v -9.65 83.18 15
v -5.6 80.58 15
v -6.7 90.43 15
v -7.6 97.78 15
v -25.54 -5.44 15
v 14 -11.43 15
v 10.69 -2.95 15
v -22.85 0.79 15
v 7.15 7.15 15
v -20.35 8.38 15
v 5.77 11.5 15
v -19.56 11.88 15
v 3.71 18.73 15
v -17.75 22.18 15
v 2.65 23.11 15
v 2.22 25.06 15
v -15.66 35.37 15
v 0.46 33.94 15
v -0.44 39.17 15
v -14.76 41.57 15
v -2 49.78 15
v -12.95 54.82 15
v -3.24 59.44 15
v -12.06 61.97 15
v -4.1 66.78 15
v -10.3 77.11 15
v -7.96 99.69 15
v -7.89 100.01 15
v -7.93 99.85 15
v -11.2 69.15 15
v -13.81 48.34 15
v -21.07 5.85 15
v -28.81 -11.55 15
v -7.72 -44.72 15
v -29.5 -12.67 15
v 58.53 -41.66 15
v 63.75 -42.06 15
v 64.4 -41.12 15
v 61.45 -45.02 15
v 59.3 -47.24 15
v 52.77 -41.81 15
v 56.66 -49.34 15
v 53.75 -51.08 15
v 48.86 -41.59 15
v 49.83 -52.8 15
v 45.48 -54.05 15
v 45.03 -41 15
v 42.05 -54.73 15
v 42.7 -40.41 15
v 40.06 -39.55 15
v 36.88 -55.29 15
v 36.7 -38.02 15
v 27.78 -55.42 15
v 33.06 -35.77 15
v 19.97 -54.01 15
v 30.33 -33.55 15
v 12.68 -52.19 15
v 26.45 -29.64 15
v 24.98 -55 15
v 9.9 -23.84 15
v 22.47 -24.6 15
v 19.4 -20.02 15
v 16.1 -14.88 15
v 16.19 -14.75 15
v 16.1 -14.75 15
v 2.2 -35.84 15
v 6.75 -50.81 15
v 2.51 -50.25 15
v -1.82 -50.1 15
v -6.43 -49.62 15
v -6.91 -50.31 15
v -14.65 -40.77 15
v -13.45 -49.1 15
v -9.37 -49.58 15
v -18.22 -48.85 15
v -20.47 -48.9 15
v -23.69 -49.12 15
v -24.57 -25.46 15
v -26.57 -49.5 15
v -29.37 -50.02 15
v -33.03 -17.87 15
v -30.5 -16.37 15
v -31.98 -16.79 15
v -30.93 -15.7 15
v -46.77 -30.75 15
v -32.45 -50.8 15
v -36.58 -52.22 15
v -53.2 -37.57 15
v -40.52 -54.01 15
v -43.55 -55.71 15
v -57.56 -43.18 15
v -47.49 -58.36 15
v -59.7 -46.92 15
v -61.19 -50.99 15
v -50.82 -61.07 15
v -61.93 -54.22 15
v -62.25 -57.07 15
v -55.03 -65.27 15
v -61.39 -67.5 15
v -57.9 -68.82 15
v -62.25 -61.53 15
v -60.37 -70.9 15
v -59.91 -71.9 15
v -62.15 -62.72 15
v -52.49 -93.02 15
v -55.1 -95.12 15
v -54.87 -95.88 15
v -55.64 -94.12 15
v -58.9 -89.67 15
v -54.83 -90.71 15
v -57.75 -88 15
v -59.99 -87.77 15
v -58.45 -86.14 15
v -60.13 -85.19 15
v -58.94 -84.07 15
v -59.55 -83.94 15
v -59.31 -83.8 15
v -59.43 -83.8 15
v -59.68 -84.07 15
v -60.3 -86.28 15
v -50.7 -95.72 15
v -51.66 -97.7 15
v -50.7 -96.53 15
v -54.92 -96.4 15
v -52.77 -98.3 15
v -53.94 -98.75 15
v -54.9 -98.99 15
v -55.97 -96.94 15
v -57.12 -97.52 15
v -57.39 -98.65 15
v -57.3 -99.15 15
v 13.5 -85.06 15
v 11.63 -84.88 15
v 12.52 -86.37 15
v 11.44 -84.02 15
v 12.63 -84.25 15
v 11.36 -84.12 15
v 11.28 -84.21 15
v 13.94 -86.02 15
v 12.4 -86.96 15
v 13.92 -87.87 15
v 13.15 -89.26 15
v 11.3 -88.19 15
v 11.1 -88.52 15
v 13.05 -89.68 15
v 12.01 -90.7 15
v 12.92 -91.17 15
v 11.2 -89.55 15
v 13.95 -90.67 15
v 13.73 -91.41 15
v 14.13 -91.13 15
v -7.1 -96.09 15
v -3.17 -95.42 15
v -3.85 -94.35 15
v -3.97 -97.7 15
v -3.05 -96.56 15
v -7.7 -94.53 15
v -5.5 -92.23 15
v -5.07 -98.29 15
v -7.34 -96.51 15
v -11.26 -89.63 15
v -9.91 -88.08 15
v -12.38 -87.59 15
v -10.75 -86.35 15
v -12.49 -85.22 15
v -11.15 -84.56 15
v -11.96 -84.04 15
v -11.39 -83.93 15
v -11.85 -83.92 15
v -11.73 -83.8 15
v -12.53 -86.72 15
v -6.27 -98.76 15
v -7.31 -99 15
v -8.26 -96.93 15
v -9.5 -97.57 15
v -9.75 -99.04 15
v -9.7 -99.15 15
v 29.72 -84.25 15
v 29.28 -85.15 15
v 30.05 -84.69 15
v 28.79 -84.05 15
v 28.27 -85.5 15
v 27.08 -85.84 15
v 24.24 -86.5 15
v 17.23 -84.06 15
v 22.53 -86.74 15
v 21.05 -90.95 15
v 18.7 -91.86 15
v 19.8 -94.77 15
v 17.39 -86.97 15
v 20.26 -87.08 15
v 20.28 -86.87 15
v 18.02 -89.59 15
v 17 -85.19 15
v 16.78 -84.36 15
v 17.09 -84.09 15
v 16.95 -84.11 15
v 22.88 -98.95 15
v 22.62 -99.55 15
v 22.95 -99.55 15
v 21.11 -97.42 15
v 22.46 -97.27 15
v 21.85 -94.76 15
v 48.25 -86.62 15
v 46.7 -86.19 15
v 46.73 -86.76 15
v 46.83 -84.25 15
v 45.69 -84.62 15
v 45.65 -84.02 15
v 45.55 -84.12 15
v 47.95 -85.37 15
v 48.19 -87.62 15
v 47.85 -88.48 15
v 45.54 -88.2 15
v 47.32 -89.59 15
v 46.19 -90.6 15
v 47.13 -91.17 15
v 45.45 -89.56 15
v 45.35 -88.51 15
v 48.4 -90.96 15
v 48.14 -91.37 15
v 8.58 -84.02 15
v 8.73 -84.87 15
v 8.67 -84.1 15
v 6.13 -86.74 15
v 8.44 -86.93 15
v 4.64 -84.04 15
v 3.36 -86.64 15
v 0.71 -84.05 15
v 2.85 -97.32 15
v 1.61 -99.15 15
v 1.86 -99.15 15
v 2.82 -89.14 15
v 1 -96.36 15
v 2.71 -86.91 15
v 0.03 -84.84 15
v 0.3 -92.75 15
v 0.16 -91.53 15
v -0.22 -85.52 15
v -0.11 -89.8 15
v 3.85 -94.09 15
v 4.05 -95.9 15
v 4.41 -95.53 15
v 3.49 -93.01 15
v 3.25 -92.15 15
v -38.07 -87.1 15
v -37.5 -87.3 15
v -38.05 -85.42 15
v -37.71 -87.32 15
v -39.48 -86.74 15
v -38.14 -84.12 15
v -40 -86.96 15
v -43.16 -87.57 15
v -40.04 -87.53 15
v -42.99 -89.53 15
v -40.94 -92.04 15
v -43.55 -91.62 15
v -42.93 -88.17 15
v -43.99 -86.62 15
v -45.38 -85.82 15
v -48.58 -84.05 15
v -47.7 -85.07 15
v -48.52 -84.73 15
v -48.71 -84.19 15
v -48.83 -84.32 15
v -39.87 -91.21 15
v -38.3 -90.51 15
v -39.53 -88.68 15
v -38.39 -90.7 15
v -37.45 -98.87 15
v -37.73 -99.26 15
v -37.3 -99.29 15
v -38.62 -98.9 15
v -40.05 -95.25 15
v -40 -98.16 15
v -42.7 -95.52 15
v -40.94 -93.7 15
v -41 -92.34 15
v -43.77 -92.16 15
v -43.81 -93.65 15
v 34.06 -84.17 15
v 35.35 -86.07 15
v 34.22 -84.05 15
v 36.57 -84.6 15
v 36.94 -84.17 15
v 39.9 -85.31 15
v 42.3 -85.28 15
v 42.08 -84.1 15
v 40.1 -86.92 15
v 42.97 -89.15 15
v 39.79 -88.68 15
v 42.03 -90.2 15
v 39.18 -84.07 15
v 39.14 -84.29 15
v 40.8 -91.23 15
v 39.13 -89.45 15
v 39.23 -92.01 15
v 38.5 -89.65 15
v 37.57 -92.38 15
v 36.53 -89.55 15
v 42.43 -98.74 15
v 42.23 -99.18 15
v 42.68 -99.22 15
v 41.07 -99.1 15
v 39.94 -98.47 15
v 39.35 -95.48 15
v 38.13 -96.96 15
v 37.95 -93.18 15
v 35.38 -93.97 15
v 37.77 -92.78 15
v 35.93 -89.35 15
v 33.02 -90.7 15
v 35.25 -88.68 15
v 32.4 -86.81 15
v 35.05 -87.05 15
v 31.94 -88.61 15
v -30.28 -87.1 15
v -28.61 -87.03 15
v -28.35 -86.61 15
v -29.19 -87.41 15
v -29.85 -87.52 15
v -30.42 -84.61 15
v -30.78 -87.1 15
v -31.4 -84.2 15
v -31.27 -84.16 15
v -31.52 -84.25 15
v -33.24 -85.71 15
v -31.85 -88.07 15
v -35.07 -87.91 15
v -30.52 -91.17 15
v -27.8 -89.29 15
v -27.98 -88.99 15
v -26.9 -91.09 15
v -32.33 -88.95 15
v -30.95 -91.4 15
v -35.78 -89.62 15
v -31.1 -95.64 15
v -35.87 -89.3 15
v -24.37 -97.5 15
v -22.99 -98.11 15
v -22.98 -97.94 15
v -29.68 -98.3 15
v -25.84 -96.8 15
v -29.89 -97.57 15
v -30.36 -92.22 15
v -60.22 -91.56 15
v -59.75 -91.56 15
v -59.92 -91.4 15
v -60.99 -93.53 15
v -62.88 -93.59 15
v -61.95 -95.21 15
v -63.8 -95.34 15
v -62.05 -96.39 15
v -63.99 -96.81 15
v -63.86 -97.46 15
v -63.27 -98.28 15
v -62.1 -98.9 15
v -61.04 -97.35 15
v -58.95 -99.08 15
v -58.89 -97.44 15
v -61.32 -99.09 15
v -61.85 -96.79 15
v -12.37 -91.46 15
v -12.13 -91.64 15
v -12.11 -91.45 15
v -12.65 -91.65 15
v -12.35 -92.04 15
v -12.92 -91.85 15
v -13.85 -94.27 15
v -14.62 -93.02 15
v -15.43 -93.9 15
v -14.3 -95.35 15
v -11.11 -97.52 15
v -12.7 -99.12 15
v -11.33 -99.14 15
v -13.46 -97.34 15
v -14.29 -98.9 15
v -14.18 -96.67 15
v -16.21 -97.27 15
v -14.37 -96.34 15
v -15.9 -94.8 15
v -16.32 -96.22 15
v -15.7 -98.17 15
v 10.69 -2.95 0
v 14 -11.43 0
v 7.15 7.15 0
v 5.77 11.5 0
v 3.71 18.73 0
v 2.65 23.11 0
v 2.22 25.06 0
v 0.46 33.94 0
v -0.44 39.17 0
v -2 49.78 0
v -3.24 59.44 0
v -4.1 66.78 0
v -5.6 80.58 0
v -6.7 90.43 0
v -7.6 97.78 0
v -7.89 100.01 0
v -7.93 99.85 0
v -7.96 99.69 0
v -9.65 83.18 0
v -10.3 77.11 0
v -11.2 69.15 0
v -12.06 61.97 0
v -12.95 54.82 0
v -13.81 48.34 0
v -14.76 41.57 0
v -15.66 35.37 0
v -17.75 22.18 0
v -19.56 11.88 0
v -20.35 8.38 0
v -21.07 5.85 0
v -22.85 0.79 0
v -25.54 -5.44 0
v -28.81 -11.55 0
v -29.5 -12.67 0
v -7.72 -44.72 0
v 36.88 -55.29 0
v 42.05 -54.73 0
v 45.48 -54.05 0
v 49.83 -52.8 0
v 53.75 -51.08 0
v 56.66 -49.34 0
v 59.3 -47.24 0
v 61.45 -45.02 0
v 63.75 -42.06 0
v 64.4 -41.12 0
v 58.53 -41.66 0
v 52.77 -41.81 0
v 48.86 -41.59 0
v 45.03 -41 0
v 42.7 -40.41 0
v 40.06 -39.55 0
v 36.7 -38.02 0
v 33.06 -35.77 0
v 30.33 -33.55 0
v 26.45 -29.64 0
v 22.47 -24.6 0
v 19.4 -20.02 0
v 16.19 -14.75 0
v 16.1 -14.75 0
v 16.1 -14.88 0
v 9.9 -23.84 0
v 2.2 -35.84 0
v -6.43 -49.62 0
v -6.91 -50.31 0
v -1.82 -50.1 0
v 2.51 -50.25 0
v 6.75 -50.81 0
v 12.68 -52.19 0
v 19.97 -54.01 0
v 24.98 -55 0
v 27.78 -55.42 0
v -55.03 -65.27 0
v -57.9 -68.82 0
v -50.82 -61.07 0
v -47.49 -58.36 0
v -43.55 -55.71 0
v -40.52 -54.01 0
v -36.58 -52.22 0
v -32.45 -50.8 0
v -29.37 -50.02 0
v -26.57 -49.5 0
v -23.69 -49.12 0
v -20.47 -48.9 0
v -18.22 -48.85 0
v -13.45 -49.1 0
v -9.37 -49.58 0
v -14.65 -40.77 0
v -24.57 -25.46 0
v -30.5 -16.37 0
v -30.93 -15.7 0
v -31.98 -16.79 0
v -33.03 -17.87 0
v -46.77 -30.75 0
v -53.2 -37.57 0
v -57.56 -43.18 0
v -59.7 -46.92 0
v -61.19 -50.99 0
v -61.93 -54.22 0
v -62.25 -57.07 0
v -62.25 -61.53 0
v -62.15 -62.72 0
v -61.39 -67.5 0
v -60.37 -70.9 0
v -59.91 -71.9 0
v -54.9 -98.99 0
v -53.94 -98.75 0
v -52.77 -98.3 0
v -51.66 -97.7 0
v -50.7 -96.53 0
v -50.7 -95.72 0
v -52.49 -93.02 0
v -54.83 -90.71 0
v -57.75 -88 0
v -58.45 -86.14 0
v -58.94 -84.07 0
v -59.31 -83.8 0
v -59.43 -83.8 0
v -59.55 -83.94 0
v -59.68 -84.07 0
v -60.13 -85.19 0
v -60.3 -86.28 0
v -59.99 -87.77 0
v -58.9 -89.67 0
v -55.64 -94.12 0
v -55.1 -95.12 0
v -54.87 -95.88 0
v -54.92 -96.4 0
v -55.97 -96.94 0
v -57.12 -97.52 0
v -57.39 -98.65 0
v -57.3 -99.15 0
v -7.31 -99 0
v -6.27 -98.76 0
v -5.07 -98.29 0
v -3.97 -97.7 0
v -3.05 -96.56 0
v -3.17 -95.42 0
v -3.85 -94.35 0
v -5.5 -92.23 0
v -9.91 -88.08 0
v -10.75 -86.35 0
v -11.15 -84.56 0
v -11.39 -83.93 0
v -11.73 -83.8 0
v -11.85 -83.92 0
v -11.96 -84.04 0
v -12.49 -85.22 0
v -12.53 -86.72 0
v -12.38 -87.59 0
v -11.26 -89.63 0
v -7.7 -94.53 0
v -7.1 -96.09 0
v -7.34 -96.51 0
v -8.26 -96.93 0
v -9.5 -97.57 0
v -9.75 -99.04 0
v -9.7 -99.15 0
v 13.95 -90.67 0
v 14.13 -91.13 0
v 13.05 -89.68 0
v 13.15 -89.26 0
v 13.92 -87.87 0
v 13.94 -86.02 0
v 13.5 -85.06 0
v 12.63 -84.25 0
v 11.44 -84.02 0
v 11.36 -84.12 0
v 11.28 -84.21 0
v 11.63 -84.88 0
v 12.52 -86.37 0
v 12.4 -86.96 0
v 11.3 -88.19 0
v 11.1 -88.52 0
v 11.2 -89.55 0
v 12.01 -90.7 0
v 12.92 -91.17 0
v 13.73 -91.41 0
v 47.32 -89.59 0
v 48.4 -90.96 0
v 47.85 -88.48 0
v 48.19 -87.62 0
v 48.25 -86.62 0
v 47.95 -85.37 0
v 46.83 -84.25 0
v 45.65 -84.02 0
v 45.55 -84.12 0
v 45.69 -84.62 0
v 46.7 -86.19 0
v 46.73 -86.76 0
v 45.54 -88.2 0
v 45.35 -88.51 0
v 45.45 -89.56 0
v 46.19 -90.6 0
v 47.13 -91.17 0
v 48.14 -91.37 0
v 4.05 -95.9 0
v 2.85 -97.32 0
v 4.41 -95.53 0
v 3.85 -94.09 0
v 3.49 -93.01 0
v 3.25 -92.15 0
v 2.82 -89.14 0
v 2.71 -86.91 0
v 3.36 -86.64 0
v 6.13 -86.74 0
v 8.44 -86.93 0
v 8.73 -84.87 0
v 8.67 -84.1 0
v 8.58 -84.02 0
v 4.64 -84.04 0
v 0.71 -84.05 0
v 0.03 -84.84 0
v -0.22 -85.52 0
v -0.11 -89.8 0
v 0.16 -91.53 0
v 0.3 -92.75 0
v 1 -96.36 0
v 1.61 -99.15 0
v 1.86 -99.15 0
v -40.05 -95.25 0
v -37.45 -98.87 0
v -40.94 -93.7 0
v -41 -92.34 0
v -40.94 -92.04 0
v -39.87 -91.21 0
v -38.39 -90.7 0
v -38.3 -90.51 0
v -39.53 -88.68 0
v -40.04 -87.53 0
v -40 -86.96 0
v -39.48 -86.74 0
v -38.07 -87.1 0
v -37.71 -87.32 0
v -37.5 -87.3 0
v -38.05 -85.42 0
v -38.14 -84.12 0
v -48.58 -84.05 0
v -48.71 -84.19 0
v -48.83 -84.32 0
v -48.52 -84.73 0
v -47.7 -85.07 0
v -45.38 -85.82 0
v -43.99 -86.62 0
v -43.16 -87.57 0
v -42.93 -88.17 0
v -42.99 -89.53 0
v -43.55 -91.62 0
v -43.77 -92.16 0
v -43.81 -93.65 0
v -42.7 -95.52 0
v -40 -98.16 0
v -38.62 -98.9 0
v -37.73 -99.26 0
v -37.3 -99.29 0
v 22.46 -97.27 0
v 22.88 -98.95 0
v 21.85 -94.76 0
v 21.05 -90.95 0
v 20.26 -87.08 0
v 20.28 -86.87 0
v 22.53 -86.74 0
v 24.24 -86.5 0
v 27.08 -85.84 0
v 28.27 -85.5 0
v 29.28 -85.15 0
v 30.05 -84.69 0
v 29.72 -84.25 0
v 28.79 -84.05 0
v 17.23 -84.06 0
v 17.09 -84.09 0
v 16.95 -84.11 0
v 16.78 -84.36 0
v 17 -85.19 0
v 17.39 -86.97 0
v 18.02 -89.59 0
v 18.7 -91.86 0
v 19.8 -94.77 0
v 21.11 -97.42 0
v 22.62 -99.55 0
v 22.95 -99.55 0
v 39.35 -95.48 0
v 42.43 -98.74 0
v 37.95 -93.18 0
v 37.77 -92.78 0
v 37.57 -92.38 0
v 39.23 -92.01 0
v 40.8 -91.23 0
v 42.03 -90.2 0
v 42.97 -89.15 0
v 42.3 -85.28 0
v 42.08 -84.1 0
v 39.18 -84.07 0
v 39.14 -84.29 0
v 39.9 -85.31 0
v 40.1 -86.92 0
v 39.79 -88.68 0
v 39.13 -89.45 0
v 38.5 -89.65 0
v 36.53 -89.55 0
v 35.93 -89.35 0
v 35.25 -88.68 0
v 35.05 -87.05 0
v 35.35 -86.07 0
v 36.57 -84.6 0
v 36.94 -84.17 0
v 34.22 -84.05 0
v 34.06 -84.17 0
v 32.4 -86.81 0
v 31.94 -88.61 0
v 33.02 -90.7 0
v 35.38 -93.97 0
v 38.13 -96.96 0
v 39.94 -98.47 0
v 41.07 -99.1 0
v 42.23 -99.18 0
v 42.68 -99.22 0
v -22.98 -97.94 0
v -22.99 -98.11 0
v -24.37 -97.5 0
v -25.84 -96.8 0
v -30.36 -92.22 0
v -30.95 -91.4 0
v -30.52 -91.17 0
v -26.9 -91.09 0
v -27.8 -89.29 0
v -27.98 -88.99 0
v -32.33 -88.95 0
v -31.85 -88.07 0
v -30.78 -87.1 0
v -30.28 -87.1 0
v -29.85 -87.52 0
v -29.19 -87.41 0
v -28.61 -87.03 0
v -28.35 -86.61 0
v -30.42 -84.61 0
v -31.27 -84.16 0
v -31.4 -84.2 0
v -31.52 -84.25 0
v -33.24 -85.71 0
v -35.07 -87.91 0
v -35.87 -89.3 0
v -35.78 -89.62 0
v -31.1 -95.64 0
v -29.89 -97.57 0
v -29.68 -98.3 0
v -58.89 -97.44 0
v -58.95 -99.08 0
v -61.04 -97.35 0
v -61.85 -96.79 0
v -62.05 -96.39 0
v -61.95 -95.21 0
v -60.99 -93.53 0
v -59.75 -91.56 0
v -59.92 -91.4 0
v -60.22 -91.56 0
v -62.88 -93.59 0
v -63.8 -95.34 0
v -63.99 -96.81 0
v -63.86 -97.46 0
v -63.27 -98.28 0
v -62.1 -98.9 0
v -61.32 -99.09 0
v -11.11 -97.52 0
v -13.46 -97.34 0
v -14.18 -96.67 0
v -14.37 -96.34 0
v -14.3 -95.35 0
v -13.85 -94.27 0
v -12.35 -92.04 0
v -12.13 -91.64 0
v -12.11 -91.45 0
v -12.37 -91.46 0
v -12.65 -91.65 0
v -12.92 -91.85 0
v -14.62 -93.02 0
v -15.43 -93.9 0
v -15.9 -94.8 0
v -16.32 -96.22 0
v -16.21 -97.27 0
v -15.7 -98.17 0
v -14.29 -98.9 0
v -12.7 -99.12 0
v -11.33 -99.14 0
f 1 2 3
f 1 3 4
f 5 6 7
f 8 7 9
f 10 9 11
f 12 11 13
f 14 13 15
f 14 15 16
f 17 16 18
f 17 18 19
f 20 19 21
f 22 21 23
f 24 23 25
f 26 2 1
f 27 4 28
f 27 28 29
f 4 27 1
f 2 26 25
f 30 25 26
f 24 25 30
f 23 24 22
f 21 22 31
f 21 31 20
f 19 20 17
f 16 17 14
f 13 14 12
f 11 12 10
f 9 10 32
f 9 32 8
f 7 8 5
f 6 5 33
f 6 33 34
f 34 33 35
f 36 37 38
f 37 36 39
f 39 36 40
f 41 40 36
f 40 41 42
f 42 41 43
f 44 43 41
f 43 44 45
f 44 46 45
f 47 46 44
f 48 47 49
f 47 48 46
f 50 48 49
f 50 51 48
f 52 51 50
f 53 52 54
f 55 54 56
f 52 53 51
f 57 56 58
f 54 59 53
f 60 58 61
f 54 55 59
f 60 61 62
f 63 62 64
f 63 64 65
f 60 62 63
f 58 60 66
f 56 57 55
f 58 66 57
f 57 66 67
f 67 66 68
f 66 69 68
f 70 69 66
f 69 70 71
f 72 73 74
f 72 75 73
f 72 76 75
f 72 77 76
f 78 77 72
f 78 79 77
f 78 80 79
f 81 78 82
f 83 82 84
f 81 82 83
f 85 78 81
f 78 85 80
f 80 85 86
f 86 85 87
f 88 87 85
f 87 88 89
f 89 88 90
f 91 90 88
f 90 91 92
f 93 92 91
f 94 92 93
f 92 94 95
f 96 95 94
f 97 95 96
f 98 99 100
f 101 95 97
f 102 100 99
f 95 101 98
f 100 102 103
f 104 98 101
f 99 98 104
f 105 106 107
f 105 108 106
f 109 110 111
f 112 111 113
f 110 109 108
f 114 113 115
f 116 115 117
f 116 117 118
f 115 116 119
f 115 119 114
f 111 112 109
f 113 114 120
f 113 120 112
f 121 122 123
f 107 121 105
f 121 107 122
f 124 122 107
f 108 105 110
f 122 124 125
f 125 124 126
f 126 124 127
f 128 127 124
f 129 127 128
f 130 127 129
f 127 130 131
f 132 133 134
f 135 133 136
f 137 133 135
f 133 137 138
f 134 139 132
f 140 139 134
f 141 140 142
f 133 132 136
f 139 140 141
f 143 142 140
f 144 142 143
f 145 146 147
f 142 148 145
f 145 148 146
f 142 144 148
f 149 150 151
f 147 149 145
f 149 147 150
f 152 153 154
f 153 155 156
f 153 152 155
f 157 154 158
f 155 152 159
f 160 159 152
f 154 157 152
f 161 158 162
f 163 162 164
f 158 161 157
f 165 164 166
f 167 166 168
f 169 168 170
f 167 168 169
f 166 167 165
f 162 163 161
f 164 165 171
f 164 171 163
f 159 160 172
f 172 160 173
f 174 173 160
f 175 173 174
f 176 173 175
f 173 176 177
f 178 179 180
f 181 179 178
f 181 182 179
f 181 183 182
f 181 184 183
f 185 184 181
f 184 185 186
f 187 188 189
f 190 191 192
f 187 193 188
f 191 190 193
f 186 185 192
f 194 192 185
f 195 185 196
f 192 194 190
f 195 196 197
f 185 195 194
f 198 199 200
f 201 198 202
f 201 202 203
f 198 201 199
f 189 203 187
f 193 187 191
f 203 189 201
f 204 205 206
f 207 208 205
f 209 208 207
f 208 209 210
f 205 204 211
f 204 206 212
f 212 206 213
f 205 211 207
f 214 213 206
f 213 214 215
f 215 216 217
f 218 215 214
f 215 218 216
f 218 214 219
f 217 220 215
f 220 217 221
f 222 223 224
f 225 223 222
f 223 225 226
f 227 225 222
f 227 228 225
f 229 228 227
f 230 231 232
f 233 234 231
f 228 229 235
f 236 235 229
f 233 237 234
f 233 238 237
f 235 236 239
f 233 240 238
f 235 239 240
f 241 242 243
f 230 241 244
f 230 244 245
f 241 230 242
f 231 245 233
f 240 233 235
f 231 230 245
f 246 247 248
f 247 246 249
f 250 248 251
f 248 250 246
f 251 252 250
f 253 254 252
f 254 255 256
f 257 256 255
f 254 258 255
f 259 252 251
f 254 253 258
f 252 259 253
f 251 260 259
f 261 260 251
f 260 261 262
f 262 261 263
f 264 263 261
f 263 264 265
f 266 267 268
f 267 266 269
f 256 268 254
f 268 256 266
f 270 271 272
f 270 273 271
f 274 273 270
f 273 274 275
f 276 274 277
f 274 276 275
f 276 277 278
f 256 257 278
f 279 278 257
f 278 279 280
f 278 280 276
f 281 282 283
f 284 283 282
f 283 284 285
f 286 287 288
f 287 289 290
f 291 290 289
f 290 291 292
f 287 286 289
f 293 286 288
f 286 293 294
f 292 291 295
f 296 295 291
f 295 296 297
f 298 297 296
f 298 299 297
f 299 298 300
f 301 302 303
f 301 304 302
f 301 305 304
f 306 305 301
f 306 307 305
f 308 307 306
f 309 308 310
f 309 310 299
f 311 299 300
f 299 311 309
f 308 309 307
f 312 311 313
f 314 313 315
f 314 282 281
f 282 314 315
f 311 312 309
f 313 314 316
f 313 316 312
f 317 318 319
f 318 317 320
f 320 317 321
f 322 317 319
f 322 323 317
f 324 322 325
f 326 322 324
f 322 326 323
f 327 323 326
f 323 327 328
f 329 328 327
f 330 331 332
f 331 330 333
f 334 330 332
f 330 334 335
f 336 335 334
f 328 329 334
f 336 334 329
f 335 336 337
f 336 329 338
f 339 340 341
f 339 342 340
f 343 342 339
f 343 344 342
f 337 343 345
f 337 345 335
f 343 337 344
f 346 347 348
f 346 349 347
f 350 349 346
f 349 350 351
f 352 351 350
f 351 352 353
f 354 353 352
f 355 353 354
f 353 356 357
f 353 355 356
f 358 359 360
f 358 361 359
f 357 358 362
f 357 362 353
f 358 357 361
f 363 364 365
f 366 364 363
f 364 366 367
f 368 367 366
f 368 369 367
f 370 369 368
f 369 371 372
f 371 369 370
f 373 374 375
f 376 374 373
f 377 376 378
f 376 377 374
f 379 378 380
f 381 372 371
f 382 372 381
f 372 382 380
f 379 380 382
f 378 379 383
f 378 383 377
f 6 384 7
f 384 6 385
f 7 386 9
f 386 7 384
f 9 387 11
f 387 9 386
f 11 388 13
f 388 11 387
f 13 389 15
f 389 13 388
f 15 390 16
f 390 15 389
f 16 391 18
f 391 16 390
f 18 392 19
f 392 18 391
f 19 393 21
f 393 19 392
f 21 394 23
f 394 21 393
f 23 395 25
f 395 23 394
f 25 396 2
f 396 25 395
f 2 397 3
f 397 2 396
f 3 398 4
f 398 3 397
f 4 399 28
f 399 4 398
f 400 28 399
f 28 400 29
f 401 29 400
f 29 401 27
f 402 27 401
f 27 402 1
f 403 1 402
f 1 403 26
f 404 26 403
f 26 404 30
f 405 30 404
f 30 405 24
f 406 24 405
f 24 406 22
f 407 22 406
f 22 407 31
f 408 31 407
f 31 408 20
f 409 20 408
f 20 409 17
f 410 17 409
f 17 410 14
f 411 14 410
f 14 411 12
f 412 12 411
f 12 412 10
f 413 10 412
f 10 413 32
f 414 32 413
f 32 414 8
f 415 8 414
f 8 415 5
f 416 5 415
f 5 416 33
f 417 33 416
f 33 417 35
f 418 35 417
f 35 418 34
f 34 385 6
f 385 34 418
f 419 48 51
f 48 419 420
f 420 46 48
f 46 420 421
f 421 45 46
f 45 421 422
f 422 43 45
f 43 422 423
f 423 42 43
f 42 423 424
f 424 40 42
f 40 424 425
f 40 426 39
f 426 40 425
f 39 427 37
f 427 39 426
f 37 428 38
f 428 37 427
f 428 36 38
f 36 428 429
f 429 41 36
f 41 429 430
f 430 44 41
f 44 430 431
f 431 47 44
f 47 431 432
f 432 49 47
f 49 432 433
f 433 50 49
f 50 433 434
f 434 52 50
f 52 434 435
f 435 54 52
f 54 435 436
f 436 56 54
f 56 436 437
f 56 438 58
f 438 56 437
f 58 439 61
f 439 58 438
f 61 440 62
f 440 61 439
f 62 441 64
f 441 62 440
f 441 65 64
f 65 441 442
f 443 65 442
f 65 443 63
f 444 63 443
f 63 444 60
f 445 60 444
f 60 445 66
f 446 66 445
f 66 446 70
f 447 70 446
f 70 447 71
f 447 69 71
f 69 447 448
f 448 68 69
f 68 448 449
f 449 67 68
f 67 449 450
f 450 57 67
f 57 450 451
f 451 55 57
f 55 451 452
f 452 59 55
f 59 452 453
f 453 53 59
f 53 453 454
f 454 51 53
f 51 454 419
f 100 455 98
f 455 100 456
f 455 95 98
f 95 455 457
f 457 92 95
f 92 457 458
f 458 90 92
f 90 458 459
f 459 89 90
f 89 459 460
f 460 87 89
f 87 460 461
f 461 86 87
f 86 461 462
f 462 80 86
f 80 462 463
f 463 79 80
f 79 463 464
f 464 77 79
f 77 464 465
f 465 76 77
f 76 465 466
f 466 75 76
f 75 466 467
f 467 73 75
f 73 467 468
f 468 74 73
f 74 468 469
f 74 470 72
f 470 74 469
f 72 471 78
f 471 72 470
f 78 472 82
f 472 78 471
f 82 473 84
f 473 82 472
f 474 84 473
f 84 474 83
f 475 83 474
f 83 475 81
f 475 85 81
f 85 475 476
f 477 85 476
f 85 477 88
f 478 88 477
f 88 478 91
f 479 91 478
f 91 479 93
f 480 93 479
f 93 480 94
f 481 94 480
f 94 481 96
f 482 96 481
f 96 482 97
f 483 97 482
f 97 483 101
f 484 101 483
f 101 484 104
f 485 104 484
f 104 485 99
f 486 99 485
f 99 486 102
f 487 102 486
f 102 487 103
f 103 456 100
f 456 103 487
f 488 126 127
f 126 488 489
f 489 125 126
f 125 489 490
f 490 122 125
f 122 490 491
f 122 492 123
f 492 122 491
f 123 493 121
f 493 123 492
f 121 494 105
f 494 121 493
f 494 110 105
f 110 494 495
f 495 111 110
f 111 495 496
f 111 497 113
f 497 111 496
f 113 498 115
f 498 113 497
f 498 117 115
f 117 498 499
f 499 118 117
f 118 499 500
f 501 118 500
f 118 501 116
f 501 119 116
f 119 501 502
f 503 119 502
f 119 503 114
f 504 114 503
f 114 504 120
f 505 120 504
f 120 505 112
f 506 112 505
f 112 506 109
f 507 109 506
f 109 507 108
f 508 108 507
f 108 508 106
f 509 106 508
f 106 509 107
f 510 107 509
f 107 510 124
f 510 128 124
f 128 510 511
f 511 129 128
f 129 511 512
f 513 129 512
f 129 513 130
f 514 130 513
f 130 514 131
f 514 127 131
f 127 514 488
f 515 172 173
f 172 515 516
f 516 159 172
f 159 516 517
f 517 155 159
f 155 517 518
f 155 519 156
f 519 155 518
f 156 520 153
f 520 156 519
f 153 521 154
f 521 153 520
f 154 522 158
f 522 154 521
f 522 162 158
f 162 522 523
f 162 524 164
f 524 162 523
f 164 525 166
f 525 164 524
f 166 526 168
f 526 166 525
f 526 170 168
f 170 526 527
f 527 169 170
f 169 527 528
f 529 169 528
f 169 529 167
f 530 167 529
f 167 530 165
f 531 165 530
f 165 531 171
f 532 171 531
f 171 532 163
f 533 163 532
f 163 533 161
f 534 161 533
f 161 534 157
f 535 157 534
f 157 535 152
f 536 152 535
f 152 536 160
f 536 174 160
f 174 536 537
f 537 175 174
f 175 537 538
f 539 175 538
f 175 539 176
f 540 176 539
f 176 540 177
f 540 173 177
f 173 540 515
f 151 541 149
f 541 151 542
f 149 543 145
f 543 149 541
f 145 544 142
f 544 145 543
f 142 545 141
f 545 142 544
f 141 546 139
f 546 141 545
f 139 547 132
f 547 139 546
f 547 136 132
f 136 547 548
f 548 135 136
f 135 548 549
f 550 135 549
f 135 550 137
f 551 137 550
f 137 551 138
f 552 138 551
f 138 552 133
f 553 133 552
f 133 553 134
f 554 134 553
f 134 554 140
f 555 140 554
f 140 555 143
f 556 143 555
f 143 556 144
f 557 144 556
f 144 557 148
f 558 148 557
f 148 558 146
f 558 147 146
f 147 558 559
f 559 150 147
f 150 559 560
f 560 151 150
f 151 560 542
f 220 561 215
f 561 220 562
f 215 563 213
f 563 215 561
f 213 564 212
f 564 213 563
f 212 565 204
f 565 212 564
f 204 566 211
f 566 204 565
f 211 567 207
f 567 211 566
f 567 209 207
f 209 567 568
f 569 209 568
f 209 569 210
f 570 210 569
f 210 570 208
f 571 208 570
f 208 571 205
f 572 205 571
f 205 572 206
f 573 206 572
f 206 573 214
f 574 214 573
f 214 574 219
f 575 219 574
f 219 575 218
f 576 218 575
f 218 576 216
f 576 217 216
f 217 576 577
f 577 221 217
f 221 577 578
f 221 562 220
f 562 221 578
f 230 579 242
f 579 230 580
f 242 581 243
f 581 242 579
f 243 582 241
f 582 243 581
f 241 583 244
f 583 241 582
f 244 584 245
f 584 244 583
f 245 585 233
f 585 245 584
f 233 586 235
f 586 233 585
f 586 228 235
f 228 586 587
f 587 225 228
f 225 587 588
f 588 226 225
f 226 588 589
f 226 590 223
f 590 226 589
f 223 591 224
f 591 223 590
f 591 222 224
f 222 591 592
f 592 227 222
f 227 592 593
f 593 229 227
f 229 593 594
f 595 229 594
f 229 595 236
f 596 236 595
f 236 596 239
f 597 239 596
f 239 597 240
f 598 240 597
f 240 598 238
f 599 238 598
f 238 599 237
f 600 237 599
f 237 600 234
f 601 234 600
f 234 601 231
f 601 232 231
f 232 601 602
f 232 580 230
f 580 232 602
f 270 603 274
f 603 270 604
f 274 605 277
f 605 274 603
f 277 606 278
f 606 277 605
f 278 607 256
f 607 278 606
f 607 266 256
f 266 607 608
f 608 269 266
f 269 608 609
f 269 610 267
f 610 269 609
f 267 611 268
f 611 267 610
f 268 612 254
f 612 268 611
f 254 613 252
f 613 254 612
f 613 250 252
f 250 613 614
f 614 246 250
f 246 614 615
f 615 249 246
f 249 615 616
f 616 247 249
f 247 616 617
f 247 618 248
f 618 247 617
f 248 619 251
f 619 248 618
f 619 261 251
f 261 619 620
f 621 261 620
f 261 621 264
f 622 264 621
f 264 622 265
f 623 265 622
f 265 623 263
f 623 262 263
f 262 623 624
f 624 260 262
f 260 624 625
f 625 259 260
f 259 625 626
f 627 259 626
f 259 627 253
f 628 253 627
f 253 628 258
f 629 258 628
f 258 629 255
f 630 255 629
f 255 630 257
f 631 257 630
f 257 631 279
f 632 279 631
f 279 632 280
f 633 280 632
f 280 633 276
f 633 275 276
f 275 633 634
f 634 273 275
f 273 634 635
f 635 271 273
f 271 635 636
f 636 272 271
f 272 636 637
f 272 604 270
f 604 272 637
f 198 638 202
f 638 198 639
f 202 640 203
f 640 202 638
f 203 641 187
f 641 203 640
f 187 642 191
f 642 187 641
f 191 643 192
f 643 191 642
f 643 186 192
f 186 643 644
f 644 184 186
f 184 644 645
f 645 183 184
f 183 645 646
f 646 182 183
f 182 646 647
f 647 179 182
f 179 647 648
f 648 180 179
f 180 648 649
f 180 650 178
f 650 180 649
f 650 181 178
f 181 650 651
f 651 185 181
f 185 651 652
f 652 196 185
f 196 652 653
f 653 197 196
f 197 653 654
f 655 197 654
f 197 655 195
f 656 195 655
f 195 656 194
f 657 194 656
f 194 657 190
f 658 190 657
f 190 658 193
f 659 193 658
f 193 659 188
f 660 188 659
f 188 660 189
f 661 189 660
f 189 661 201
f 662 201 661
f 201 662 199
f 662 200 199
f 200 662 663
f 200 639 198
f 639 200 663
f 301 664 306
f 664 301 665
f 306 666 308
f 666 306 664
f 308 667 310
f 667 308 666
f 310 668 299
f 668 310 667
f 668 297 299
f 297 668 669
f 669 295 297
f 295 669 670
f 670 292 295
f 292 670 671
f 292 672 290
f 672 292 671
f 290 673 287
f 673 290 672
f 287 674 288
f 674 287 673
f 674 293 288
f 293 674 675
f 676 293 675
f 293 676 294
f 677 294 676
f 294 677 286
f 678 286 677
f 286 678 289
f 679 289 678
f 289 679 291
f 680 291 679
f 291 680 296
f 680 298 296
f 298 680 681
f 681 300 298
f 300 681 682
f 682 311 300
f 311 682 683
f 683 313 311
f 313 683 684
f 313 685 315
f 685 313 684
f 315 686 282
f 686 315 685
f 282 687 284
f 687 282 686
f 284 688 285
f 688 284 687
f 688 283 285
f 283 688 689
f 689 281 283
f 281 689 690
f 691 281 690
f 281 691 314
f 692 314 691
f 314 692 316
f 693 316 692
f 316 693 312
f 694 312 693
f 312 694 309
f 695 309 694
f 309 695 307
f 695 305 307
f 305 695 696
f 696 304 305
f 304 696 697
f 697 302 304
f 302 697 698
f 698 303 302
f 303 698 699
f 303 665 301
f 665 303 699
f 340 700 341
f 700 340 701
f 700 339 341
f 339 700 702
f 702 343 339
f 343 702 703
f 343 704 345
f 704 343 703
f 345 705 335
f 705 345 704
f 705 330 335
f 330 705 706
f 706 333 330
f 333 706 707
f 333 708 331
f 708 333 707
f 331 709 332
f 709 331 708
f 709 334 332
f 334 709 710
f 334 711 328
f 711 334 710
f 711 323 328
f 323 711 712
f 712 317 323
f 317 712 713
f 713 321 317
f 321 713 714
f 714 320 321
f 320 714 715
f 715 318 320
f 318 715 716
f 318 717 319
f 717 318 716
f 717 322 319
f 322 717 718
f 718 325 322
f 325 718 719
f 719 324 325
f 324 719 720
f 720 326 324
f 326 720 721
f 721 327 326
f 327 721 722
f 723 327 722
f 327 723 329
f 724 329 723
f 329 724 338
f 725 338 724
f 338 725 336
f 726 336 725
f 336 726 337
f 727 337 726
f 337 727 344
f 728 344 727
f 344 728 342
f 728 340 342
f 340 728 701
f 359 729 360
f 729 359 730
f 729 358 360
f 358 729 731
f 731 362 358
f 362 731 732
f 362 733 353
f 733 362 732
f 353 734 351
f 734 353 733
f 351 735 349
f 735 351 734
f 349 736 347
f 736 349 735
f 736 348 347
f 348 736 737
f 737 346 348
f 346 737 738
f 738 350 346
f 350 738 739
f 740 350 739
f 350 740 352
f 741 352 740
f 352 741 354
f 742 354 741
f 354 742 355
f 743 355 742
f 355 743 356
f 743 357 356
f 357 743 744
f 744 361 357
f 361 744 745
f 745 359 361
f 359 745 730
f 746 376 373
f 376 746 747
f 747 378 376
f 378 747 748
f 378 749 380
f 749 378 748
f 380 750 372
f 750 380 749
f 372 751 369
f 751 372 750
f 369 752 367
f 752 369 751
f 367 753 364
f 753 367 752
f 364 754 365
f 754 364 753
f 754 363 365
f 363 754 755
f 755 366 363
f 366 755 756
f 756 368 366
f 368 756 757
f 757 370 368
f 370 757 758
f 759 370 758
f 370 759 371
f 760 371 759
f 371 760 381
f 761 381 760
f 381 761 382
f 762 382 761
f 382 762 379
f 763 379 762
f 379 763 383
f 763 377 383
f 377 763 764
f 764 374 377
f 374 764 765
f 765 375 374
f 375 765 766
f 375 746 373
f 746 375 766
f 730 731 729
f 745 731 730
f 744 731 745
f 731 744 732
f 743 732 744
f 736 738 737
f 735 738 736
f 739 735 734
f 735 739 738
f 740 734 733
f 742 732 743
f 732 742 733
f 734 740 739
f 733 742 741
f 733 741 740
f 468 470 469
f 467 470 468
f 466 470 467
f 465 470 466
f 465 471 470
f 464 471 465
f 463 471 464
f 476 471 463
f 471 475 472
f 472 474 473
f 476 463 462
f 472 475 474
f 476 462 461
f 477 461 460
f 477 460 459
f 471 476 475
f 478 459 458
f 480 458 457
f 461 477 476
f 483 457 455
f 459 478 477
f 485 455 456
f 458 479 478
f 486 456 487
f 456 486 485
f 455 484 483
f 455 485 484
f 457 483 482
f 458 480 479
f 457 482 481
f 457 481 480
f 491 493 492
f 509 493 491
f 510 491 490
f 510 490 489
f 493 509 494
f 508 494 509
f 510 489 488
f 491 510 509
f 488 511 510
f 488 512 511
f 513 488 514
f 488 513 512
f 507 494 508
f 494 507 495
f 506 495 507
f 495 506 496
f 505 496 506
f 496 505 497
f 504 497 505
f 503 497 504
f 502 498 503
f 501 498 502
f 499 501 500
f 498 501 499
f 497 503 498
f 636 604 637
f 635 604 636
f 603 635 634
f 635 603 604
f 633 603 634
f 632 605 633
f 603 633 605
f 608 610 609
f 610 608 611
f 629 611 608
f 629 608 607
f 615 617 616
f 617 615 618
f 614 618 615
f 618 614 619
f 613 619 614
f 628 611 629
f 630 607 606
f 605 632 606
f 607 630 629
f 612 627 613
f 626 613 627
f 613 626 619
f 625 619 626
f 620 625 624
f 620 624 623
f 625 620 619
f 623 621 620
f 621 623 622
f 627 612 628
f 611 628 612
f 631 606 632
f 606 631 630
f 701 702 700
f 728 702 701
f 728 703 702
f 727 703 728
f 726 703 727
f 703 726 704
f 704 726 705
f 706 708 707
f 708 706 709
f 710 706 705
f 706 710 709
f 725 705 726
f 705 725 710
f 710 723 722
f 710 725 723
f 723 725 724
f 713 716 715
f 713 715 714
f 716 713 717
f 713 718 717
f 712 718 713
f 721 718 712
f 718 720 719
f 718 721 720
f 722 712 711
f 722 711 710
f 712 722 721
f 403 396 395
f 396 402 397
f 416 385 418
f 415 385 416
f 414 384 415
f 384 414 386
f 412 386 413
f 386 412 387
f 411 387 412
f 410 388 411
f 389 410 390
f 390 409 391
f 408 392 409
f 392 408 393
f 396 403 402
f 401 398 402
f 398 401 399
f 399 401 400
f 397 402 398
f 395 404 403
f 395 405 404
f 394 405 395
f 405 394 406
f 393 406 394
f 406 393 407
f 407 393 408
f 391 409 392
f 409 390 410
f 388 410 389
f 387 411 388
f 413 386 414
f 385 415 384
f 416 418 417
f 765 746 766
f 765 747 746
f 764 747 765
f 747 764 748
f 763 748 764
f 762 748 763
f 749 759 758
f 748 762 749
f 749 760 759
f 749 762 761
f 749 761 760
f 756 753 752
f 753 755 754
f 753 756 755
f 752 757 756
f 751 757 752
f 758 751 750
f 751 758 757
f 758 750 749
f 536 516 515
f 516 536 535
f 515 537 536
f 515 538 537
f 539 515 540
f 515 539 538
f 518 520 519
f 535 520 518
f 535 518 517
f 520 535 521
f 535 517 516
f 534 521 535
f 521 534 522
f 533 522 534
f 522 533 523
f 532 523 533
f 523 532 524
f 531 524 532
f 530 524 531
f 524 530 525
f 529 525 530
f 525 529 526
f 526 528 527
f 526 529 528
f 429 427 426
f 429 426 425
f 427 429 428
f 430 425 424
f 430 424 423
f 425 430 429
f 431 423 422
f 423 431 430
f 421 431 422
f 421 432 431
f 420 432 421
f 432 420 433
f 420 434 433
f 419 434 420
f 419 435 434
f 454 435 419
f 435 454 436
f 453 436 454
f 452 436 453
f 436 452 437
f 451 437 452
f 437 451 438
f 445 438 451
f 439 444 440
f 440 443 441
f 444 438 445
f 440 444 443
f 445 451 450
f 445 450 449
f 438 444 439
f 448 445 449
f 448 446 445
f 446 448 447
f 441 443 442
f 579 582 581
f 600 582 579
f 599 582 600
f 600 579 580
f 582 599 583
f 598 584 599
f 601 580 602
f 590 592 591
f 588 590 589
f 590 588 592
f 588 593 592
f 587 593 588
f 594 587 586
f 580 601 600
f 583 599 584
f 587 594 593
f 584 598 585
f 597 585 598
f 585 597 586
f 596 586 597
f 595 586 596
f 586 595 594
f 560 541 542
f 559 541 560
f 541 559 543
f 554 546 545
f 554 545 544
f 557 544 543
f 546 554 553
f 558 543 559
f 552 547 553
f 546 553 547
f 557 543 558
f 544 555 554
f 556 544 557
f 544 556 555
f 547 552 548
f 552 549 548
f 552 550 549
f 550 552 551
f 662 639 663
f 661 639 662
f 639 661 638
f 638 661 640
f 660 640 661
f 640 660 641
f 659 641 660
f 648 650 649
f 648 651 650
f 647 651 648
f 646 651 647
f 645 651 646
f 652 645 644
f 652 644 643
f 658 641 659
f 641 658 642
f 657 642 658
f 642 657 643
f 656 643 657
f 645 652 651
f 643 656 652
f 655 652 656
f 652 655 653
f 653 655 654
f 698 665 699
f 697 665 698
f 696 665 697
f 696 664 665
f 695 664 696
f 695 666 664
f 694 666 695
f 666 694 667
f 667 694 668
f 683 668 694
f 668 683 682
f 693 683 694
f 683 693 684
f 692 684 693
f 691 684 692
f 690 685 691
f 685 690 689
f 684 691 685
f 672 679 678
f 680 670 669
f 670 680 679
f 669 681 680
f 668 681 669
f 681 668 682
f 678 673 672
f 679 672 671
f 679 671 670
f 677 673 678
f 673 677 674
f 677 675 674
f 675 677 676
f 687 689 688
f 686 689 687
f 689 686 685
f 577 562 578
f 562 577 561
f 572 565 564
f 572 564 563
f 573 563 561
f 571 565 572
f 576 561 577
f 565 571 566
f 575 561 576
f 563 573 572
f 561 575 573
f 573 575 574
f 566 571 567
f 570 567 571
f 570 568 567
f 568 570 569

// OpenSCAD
module db02c1d8352dbfba158cc470afe8efdc_1()
{
 /* Generated by trace2scad version 20150415
    http://aggregate.org/MAKE/TRACE2SCAD/
    Optimized model has 387/4796 original points
 */
 color([0.48, 0.48, 0.48])
 assign(minx=0) /* polygon minx=39 */
 assign(miny=0) /* polygon miny=45 */
 assign(maxx=12880) /* polygon maxx=12880 */
 assign(maxy=20000) /* polygon maxy=20001 */
 assign(dx=maxx-minx)
 assign(dy=maxy-miny)
 assign(maxd=((dx>dy)?dx:dy))
 scale([1/maxd, 1/maxd, 1])
 translate([-minx-dx/2, -miny-dy/2, 0])
 linear_extrude(height=1, convexity=387)
 union() {
  union() {
   polygon([[5647,19985],[5644,19969],[5475,18318],[5410,17711],[5320,16915],[5234,16197],[5145,15482],[5059,14834],[4964,14157],[4874,13537],[4665,12218],[4484,11188],[4405,10838],[4333,10585],[4155,10079],[3886,9456],[3559,8845],[3490,8733],[5668,5528],[7840,8857],[7509,9705],[7155,10715],[7017,11150],[6811,11873],[6705,12311],[6662,12506],[6486,13394],[6396,13917],[6240,14978],[6116,15944],[6030,16678],[5880,18058],[5770,19043],[5680,19778],[5651,20001]], convexity=6);
   polygon([[8050,8518],[8050,8512],[7430,7616],[6660,6416],[5797,5038],[5749,4969],[6258,4990],[6691,4975],[7115,4919],[7708,4781],[8437,4599],[8938,4500],[9218,4458],[10128,4471],[10645,4527],[10988,4595],[11423,4720],[11815,4892],[12106,5066],[12370,5276],[12585,5498],[12815,5794],[12880,5888],[12293,5834],[11717,5819],[11326,5841],[10943,5900],[10710,5959],[10446,6045],[10110,6198],[9746,6423],[9473,6645],[9085,7036],[8687,7540],[8380,7998],[8059,8525],[8050,8525]], convexity=9);
   polygon([[3242,8321],[3137,8213],[1763,6925],[1120,6243],[684,5682],[470,5308],[321,4901],[247,4578],[215,4293],[215,3847],[225,3728],[301,3250],[403,2910],[449,2810],[650,3118],[937,3473],[1358,3893],[1691,4164],[2085,4429],[2388,4599],[2782,4778],[3195,4920],[3503,4998],[3783,5050],[4071,5088],[4393,5110],[4618,5115],[5095,5090],[5503,5042],[4975,5923],[3983,7454],[3390,8363],[3347,8430]], convexity=7);
   polygon([[485,1606],[472,1593],[427,1481],[410,1372],[441,1223],[550,1033],[876,588],[930,488],[953,412],[948,360],[843,306],[728,248],[701,135],[710,85],[950,101],[1046,125],[1163,170],[1274,230],[1370,347],[1370,428],[1191,698],[957,929],[665,1200],[595,1386],[546,1593],[509,1620],[497,1620]], convexity=8);
   polygon([[5255,1608],[5244,1596],[5191,1478],[5187,1328],[5202,1241],[5314,1037],[5670,547],[5730,391],[5706,349],[5614,307],[5490,243],[5465,96],[5470,85],[5709,100],[5813,124],[5933,171],[6043,230],[6135,344],[6123,458],[6055,565],[5890,777],[5449,1192],[5365,1365],[5325,1544],[5301,1607],[5267,1620]], convexity=8);
   polygon([[6904,1596],[6511,1595],[6443,1516],[6418,1448],[6429,1020],[6456,847],[6470,725],[6540,364],[6601,85],[6626,85],[6725,268],[6845,410],[6881,447],[6825,591],[6789,699],[6765,785],[6722,1086],[6711,1309],[6776,1336],[7053,1326],[7284,1307],[7313,1513],[7307,1590],[7298,1598]], convexity=10);
   polygon([[7576,1588],[7568,1579],[7603,1512],[7692,1363],[7680,1304],[7570,1181],[7550,1148],[7560,1045],[7641,930],[7732,883],[7813,859],[7853,887],[7835,933],[7745,1032],[7755,1074],[7832,1213],[7834,1398],[7790,1494],[7703,1575],[7584,1598]], convexity=10);
   polygon([[11000,1593],[10995,1588],[11009,1538],[11110,1381],[11113,1324],[10994,1180],[10975,1149],[10985,1044],[11059,940],[11153,883],[11254,863],[11280,904],[11172,1041],[11225,1152],[11259,1238],[11265,1338],[11235,1463],[11123,1575],[11005,1598]], convexity=10);
   polygon([[1569,1581],[1557,1568],[1588,1527],[1670,1493],[1902,1418],[2041,1338],[2124,1243],[2147,1183],[2141,1047],[2085,838],[2063,784],[2059,635],[2170,448],[2440,184],[2578,110],[2667,74],[2710,71],[2695,113],[2435,475],[2346,630],[2340,766],[2346,796],[2453,879],[2601,930],[2610,949],[2487,1132],[2436,1247],[2440,1304],[2492,1326],[2633,1290],[2669,1268],[2690,1270],[2635,1458],[2626,1588],[1582,1595]], convexity=13);
   polygon([[8149,1591],[8135,1589],[8118,1564],[8140,1481],[8179,1303],[8242,1041],[8310,814],[8420,523],[8551,258],[8702,45],[8735,45],[8728,105],[8686,273],[8625,524],[8545,905],[8466,1292],[8468,1313],[8693,1326],[8864,1350],[9148,1416],[9267,1450],[9368,1485],[9445,1531],[9412,1575],[9319,1595],[8163,1594]], convexity=9);
   polygon([[9854,1589],[9846,1583],[9680,1319],[9634,1139],[9742,930],[9978,603],[10253,304],[10434,153],[10547,90],[10663,82],[10708,78],[10683,126],[10375,452],[10235,682],[10217,722],[10197,762],[10363,799],[10520,877],[10643,980],[10737,1085],[10670,1472],[10648,1590],[10358,1593],[10354,1571],[10430,1469],[10450,1308],[10419,1132],[10353,1055],[10290,1035],[10093,1045],[10033,1065],[9965,1132],[9945,1295],[9975,1393],[10097,1540],[10134,1583],[9862,1595]], convexity=13);
   polygon([[3300,1580],[3288,1575],[3116,1429],[2933,1209],[2853,1070],[2862,1038],[3330,436],[3451,243],[3472,170],[4141,189],[4142,206],[4003,250],[3856,320],[3404,778],[3345,860],[3388,883],[3750,891],[3660,1071],[3642,1101],[3207,1105],[3255,1193],[3362,1290],[3412,1290],[3455,1248],[3521,1259],[3579,1297],[3605,1339],[3398,1539],[3313,1584]], convexity=12);
   polygon([[433,852],[418,844],[152,641],[60,466],[41,319],[54,254],[113,172],[230,110],[308,91],[545,92],[551,256],[336,265],[255,321],[235,361],[245,479],[341,647],[465,844],[448,860]], convexity=8);
   polygon([[5175,835],[5148,815],[4978,698],[4897,610],[4850,520],[4808,378],[4819,273],[4870,183],[5011,110],[5170,88],[5307,86],[5329,248],[5094,266],[5022,333],[5003,366],[5010,465],[5055,573],[5205,796],[5227,836],[5229,855],[5203,854]], convexity=8);
  }
 }
}

module db02c1d8352dbfba158cc470afe8efdc()
{
 /* all layers combined, scaled to within a 1mm cube */
 scale([1, 1, 1/1])
 difference() {
  union() {
   scale([1,1,2]) translate([0,0,-0.5]) db02c1d8352dbfba158cc470afe8efdc_1();
  }
  translate([0,0,-2]) cube([2,2,4],center=true);
 }
}

scale([200, 200, 15]) {
	db02c1d8352dbfba158cc470afe8efdc();
}
